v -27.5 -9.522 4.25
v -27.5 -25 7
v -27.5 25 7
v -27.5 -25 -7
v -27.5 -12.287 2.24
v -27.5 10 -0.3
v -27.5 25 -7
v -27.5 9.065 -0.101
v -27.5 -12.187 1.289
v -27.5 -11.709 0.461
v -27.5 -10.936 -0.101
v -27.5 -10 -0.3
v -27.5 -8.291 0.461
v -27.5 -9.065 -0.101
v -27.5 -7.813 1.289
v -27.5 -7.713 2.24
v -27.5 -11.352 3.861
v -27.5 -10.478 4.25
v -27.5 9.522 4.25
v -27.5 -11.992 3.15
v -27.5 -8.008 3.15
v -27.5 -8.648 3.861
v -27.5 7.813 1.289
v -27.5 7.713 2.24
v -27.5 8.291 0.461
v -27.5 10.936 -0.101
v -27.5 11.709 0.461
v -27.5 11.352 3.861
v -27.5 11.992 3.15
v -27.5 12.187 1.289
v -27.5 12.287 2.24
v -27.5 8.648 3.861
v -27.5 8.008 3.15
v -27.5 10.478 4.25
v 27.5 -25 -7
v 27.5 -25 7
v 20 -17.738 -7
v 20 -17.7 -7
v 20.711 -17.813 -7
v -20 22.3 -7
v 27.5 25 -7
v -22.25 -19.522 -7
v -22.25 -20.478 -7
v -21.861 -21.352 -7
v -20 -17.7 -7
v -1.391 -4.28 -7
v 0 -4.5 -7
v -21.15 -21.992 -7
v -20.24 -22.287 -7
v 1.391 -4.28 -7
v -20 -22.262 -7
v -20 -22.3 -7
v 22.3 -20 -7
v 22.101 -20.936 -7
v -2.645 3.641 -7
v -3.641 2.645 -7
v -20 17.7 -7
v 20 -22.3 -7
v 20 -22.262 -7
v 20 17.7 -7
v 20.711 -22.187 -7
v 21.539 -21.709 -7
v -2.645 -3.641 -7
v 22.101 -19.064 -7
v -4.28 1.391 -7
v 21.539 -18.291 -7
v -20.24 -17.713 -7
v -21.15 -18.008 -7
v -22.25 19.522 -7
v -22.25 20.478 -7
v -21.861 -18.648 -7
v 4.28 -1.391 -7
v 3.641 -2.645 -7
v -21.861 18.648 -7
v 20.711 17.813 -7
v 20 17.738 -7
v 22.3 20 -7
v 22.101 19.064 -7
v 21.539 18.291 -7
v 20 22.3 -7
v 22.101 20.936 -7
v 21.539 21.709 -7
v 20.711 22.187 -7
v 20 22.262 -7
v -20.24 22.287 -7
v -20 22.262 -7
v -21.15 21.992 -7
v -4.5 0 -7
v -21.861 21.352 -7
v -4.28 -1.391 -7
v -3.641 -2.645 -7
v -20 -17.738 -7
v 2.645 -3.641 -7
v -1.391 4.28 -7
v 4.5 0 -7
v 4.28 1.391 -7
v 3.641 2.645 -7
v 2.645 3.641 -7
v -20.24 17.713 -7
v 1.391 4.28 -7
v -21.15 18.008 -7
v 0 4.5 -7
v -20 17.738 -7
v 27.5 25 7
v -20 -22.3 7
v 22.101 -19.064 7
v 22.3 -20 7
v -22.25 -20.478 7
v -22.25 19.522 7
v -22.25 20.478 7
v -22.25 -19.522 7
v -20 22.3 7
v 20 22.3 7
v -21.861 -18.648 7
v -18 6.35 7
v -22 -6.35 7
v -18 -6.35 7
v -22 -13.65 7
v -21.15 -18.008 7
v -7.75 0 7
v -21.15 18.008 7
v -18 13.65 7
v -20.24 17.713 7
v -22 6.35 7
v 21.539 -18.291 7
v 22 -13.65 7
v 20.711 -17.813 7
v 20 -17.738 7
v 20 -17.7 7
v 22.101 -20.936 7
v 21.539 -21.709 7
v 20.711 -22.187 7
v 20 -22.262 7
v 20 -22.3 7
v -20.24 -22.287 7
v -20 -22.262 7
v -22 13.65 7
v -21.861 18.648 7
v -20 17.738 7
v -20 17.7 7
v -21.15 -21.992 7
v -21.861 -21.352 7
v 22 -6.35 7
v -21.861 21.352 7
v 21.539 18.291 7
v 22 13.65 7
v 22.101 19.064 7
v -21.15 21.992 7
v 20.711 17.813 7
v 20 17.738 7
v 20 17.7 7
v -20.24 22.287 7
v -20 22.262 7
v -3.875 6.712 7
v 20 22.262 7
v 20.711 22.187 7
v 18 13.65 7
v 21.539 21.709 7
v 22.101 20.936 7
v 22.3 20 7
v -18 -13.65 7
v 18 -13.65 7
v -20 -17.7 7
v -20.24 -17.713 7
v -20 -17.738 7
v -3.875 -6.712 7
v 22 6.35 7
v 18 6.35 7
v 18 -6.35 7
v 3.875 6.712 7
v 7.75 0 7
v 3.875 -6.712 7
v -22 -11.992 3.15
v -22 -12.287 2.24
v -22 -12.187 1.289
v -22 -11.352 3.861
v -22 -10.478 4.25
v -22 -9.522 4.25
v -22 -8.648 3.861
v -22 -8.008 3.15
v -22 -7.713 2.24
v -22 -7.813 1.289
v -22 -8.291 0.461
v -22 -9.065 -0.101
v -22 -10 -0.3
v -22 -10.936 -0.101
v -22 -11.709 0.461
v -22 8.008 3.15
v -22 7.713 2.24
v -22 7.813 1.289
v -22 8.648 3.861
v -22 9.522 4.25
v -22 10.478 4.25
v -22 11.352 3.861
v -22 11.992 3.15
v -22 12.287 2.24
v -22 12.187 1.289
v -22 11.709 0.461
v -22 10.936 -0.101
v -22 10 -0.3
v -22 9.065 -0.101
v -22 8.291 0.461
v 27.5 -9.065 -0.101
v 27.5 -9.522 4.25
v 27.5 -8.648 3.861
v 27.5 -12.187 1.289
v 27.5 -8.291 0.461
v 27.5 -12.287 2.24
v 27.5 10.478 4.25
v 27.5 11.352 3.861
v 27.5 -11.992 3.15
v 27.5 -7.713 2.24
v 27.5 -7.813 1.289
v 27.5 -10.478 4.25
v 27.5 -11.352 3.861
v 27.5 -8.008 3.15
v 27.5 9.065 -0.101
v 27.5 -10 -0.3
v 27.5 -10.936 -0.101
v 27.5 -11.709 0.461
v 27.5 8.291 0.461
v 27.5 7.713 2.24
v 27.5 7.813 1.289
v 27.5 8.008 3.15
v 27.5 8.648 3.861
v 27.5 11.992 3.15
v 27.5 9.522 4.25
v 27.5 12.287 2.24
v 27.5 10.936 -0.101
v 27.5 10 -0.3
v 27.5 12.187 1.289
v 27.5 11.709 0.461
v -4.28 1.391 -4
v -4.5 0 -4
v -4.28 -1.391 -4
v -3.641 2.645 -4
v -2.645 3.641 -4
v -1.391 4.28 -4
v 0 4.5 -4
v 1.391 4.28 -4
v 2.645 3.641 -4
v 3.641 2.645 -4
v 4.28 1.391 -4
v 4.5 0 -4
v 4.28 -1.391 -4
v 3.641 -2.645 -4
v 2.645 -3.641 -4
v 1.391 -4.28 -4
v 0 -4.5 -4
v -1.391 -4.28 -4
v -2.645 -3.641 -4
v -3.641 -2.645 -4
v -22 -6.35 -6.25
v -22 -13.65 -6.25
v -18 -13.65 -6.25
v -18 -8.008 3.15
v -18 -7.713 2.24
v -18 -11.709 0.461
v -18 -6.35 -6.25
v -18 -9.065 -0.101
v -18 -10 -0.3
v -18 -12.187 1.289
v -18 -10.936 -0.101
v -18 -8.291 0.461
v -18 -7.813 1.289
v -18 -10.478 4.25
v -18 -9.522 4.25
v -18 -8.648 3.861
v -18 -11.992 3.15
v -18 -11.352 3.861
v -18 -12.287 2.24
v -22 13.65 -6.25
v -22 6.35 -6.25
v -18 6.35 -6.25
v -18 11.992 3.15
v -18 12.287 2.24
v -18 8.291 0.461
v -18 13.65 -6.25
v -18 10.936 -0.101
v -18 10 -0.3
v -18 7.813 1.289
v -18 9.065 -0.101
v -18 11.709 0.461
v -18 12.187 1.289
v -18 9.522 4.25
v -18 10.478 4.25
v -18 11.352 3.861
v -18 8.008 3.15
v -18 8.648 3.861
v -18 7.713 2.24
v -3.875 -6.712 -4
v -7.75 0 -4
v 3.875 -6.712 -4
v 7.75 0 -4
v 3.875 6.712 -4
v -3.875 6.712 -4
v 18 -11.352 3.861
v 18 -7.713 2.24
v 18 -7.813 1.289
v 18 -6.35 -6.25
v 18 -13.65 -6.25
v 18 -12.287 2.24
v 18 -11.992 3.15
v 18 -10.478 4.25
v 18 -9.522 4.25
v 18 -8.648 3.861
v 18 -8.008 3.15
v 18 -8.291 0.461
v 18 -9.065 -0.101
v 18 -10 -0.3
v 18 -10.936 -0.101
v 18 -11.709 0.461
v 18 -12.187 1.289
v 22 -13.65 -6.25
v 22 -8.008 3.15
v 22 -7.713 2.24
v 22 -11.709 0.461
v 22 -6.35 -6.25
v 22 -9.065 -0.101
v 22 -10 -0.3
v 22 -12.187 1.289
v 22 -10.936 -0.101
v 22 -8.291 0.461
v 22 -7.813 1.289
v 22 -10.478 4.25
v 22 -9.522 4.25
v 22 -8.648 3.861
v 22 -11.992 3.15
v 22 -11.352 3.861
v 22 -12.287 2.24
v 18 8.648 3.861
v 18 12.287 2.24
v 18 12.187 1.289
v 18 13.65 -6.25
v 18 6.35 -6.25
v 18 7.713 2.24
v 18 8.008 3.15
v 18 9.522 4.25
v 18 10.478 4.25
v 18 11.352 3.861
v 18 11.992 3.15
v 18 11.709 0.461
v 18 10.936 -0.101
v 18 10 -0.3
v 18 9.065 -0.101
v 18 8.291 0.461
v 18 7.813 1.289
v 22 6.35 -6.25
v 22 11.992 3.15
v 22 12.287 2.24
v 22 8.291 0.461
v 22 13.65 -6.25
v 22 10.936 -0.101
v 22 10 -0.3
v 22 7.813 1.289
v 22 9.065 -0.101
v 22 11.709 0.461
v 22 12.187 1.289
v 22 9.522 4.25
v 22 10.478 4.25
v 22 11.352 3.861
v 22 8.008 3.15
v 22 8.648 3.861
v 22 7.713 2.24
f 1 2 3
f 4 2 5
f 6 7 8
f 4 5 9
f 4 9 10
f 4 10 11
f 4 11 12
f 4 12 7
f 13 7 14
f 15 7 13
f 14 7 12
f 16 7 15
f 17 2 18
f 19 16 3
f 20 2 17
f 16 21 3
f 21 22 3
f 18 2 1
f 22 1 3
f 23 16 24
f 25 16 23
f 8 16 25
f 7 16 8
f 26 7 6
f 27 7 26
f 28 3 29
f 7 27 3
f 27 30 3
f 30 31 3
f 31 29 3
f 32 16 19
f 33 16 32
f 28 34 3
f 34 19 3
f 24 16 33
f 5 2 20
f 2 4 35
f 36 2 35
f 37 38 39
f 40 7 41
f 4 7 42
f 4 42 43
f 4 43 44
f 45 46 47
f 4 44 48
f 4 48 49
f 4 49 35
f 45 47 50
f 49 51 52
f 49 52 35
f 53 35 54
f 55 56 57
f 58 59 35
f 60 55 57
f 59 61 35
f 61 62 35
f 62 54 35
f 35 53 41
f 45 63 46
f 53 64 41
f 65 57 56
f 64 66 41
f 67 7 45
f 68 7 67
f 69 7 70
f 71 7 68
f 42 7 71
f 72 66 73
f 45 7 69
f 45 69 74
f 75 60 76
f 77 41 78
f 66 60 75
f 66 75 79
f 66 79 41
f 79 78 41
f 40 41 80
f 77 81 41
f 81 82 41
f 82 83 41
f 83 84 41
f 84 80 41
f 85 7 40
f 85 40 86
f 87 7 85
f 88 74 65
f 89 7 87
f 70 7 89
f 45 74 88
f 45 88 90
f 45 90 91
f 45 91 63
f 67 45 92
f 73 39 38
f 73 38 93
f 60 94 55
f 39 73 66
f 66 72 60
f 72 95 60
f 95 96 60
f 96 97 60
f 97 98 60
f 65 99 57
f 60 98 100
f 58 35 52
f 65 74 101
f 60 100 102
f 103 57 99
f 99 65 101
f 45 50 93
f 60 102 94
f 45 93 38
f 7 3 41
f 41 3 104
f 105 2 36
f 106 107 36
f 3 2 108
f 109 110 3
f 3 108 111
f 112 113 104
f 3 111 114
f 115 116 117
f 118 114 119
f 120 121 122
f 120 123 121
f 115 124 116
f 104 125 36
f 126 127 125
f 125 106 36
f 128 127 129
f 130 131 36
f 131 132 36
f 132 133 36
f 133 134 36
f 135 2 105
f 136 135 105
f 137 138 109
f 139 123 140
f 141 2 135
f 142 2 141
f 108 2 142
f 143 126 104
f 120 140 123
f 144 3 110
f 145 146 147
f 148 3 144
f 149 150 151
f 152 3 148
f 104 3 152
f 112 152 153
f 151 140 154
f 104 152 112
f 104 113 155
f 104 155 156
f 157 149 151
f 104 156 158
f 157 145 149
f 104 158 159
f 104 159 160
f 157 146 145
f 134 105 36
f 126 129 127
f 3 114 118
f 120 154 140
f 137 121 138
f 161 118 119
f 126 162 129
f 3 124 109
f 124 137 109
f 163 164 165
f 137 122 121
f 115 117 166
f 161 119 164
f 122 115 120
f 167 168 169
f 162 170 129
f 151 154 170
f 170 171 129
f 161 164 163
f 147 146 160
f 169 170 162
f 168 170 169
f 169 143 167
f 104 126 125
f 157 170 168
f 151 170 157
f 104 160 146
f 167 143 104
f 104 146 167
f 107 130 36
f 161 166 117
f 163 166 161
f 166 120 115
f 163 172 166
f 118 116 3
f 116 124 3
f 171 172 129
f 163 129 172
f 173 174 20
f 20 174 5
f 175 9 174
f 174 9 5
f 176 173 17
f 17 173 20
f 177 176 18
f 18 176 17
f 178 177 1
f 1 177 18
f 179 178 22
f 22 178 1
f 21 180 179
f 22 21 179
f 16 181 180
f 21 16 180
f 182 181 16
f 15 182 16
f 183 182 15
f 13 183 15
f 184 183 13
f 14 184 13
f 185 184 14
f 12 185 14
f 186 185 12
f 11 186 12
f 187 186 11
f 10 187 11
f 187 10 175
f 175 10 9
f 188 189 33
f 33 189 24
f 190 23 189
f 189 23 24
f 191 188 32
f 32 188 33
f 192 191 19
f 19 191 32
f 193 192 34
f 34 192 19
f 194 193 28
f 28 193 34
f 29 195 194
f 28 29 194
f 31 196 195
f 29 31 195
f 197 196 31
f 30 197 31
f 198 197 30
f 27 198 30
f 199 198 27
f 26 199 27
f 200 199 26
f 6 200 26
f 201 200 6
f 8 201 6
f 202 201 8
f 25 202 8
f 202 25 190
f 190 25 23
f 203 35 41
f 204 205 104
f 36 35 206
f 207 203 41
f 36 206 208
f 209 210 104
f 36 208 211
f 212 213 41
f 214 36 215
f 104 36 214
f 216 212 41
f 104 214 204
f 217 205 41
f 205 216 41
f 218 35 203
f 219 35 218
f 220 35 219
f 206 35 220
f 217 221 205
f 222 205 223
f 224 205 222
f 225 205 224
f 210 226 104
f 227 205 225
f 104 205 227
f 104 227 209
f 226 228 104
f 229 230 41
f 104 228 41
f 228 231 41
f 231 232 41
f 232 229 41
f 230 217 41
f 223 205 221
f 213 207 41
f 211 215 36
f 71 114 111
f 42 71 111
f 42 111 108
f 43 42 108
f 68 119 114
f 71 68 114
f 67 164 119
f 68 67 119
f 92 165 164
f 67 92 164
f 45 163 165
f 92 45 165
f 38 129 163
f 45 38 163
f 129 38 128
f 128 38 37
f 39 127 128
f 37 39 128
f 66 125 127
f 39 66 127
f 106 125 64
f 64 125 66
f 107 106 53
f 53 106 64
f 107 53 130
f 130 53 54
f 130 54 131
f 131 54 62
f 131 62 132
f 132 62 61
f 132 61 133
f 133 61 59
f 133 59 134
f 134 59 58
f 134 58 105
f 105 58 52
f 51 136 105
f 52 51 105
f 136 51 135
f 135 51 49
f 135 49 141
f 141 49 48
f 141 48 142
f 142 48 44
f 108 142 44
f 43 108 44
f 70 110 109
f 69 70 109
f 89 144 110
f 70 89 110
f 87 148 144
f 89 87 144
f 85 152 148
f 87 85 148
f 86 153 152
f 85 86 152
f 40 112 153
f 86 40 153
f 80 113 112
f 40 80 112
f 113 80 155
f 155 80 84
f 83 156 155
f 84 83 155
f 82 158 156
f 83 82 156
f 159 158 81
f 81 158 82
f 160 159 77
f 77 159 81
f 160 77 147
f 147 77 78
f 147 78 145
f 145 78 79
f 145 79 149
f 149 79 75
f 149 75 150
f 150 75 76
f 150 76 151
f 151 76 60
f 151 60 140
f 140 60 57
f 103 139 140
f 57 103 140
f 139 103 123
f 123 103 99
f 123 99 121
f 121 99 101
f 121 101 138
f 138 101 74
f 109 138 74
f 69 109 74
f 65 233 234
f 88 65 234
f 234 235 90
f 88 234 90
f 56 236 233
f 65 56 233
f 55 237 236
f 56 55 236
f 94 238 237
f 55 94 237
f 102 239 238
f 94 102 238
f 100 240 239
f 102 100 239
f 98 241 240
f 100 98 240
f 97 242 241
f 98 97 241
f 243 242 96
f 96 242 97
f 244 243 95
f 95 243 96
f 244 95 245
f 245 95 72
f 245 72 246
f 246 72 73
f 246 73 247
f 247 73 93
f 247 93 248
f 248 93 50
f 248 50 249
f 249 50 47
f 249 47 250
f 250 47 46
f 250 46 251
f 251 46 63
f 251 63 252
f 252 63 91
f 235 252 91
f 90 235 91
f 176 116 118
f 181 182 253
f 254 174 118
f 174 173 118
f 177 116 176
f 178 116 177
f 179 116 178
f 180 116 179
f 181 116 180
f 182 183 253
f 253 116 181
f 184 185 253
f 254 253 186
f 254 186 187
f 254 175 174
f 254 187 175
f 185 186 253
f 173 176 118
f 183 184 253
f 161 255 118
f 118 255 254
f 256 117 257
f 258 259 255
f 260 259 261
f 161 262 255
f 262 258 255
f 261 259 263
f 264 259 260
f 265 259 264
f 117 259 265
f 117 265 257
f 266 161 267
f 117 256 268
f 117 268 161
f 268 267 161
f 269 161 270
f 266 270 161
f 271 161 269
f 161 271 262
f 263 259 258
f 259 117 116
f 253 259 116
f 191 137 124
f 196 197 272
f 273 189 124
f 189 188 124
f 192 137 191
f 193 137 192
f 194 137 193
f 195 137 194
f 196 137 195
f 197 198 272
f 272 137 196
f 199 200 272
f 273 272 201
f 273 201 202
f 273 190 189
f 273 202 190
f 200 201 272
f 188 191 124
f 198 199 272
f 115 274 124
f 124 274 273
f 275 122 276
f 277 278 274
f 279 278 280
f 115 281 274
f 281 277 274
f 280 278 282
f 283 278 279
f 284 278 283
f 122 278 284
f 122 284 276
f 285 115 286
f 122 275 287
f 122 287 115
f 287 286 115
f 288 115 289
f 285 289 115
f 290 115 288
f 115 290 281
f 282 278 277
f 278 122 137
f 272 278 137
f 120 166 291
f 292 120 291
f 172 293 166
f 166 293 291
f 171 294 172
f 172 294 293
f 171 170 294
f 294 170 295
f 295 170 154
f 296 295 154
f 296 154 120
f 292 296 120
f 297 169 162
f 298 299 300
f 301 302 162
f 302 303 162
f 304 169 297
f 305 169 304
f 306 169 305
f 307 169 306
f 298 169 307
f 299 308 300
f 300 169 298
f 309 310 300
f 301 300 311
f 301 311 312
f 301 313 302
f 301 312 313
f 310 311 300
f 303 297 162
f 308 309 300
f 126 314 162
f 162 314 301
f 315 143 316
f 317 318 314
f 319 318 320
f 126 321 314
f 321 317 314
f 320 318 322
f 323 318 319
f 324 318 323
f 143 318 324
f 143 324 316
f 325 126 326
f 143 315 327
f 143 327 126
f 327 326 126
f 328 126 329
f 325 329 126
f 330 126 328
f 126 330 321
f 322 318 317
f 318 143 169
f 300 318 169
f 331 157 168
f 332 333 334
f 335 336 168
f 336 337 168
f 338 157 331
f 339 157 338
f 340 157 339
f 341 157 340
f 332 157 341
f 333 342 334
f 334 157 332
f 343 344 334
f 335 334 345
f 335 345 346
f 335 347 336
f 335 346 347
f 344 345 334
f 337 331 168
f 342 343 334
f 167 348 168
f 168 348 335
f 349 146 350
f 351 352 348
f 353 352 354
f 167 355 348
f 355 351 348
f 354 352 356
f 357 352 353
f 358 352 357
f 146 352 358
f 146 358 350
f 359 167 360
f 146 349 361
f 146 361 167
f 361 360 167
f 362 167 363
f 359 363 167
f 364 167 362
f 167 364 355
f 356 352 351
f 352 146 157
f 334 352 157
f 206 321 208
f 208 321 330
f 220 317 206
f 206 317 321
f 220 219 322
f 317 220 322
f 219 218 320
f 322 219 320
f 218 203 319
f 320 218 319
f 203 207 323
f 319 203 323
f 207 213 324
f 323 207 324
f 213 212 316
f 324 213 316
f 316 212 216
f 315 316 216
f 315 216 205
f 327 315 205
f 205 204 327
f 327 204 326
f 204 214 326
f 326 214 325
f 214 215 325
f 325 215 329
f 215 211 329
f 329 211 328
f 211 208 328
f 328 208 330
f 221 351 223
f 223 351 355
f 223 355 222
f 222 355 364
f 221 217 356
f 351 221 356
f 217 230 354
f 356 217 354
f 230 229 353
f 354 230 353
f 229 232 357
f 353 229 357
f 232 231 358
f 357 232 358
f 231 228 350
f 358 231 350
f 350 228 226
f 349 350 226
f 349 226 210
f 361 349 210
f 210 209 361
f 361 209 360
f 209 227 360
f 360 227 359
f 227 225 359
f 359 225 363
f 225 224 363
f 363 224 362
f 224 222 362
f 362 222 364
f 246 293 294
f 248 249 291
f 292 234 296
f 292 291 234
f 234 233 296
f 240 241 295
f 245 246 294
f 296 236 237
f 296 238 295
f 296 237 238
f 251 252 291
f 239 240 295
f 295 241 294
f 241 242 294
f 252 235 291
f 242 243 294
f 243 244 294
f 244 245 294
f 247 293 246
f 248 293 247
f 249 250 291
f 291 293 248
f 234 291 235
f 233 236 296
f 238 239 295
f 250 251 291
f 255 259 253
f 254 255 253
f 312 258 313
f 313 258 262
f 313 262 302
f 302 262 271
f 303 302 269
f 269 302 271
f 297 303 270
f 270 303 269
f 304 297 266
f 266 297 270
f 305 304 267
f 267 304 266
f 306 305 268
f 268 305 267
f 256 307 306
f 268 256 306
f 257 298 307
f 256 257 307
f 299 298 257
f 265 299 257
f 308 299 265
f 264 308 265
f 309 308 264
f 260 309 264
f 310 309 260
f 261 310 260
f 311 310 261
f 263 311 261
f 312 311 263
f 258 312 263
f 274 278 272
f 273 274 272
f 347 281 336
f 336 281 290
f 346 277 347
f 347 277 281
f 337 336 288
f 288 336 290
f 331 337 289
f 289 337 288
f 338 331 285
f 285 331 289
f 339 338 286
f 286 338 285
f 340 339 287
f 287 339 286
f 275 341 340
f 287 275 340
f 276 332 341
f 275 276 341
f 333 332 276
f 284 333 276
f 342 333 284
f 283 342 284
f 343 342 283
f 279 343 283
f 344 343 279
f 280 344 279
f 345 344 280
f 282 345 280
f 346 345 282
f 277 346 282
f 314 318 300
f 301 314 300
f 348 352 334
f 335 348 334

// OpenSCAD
ancho_pared=7;


module cubre_tensor(){
	difference(){
		
		//CUERPO CENTRAL
		union(){
			cube([55,50,14],center=true);
			
			
			//pestañas de montaje
			/*translate([2.5,60/2,5]) rotate([0,0,0])
			cube([65,10,4],center=true);

			translate([2.5,-60/2,5]) rotate([0,0,0])
			cube([65,10,4],center=true);
			
			
			
			//suplemento
			translate([60/2,0,0]) rotate([0,0,0])
			cube([10,50,14],center=true);
			*/
			
		}
		//VACIADO CUERPO CENTRAL
		translate([0,0,3]) rotate([0,0,0])
		//cube([50,42,16],center=true);
		cylinder(r=15.5/2,h=14, $fn=6, center=true);
		
		//AGUJERO TENSOR
		translate([0,10,2]) rotate([0,90,0])
		cylinder(r=4.6/2,h=100,center=true , $fn=15);

		
		//AGUJERO TENSOR
		translate([0,-10,2]) rotate([0,90,0])
		cylinder(r=4.6/2,h=100,center=true , $fn=15);
	
		//AGUJERO INFERIOR EJE

		//cube ([40,10,100], center=true);
		
		cylinder(r=9/2,h=100, $fn=20, center=true);		

		//alojmaiento tuerca

		translate([40/2,10,0.75]) rotate([0,0,0])
		cube([4,7.30,14],center=true);
		
		translate([40/2,-10,0.75]) rotate([0,0,0])
		cube([4,7.30,14],center=true);

		

		translate([-40/2,10,0.75]) rotate([0,0,0])
		cube([4,7.30,14],center=true);
		
		translate([-40/2,-10,0.75]) rotate([0,0,0])
		cube([4,7.30,14],center=true);
		
		//agujero montaje
		translate([40/2,40/2,0]) rotate([0,0,0])
		cylinder(r=4.6/2,h=100,center=true , $fn=15);
		
		translate([-40/2,40/2,0]) rotate([0,0,0])
		cylinder(r=4.6/2,h=100,center=true , $fn=15);

		translate([40/2,-40/2,0]) rotate([0,0,0])
		cylinder(r=4.6/2,h=100,center=true , $fn=15);

		translate([-40/2,-40/2,0]) rotate([0,0,0])
		cylinder(r=4.6/2,h=100,center=true , $fn=15);
		
		translate([-25/2,-40/2,0]) rotate([0,0,0])
		cylinder(r=4.6/2,h=100,center=true , $fn=15);

		translate([0,40/2,5]) rotate([0,0,0])
			cube([40,4.60,100],center=true);

		translate([0,-40/2,5]) rotate([0,0,0])
			cube([40,4.60,100],center=true);
		

		/*//agujeros para aligerar
		translate([15,15,0]) rotate([0,0,0])
		cylinder(r=15/2,h=100,center=true , $fn=15);
		translate([-11,15,0]) rotate([0,0,0])
		cylinder(r=15/2,h=100,center=true , $fn=15);
		translate([15,-15,0]) rotate([0,0,0])
		cylinder(r=15/2,h=100,center=true , $fn=15);
		translate([-11,-15,0]) rotate([0,0,0])
		cylinder(r=15/2,h=100,center=true , $fn=15);

		translate([-19,0,0]) rotate([0,0,0])
		cylinder(r=14/2,h=100,center=true , $fn=15);
		translate([23,0,0]) rotate([0,0,0])
		cylinder(r=14/2,h=100,center=true , $fn=15);
		*/
	}
}


translate([0,0,0]) rotate([0,0,0])
cubre_tensor();
